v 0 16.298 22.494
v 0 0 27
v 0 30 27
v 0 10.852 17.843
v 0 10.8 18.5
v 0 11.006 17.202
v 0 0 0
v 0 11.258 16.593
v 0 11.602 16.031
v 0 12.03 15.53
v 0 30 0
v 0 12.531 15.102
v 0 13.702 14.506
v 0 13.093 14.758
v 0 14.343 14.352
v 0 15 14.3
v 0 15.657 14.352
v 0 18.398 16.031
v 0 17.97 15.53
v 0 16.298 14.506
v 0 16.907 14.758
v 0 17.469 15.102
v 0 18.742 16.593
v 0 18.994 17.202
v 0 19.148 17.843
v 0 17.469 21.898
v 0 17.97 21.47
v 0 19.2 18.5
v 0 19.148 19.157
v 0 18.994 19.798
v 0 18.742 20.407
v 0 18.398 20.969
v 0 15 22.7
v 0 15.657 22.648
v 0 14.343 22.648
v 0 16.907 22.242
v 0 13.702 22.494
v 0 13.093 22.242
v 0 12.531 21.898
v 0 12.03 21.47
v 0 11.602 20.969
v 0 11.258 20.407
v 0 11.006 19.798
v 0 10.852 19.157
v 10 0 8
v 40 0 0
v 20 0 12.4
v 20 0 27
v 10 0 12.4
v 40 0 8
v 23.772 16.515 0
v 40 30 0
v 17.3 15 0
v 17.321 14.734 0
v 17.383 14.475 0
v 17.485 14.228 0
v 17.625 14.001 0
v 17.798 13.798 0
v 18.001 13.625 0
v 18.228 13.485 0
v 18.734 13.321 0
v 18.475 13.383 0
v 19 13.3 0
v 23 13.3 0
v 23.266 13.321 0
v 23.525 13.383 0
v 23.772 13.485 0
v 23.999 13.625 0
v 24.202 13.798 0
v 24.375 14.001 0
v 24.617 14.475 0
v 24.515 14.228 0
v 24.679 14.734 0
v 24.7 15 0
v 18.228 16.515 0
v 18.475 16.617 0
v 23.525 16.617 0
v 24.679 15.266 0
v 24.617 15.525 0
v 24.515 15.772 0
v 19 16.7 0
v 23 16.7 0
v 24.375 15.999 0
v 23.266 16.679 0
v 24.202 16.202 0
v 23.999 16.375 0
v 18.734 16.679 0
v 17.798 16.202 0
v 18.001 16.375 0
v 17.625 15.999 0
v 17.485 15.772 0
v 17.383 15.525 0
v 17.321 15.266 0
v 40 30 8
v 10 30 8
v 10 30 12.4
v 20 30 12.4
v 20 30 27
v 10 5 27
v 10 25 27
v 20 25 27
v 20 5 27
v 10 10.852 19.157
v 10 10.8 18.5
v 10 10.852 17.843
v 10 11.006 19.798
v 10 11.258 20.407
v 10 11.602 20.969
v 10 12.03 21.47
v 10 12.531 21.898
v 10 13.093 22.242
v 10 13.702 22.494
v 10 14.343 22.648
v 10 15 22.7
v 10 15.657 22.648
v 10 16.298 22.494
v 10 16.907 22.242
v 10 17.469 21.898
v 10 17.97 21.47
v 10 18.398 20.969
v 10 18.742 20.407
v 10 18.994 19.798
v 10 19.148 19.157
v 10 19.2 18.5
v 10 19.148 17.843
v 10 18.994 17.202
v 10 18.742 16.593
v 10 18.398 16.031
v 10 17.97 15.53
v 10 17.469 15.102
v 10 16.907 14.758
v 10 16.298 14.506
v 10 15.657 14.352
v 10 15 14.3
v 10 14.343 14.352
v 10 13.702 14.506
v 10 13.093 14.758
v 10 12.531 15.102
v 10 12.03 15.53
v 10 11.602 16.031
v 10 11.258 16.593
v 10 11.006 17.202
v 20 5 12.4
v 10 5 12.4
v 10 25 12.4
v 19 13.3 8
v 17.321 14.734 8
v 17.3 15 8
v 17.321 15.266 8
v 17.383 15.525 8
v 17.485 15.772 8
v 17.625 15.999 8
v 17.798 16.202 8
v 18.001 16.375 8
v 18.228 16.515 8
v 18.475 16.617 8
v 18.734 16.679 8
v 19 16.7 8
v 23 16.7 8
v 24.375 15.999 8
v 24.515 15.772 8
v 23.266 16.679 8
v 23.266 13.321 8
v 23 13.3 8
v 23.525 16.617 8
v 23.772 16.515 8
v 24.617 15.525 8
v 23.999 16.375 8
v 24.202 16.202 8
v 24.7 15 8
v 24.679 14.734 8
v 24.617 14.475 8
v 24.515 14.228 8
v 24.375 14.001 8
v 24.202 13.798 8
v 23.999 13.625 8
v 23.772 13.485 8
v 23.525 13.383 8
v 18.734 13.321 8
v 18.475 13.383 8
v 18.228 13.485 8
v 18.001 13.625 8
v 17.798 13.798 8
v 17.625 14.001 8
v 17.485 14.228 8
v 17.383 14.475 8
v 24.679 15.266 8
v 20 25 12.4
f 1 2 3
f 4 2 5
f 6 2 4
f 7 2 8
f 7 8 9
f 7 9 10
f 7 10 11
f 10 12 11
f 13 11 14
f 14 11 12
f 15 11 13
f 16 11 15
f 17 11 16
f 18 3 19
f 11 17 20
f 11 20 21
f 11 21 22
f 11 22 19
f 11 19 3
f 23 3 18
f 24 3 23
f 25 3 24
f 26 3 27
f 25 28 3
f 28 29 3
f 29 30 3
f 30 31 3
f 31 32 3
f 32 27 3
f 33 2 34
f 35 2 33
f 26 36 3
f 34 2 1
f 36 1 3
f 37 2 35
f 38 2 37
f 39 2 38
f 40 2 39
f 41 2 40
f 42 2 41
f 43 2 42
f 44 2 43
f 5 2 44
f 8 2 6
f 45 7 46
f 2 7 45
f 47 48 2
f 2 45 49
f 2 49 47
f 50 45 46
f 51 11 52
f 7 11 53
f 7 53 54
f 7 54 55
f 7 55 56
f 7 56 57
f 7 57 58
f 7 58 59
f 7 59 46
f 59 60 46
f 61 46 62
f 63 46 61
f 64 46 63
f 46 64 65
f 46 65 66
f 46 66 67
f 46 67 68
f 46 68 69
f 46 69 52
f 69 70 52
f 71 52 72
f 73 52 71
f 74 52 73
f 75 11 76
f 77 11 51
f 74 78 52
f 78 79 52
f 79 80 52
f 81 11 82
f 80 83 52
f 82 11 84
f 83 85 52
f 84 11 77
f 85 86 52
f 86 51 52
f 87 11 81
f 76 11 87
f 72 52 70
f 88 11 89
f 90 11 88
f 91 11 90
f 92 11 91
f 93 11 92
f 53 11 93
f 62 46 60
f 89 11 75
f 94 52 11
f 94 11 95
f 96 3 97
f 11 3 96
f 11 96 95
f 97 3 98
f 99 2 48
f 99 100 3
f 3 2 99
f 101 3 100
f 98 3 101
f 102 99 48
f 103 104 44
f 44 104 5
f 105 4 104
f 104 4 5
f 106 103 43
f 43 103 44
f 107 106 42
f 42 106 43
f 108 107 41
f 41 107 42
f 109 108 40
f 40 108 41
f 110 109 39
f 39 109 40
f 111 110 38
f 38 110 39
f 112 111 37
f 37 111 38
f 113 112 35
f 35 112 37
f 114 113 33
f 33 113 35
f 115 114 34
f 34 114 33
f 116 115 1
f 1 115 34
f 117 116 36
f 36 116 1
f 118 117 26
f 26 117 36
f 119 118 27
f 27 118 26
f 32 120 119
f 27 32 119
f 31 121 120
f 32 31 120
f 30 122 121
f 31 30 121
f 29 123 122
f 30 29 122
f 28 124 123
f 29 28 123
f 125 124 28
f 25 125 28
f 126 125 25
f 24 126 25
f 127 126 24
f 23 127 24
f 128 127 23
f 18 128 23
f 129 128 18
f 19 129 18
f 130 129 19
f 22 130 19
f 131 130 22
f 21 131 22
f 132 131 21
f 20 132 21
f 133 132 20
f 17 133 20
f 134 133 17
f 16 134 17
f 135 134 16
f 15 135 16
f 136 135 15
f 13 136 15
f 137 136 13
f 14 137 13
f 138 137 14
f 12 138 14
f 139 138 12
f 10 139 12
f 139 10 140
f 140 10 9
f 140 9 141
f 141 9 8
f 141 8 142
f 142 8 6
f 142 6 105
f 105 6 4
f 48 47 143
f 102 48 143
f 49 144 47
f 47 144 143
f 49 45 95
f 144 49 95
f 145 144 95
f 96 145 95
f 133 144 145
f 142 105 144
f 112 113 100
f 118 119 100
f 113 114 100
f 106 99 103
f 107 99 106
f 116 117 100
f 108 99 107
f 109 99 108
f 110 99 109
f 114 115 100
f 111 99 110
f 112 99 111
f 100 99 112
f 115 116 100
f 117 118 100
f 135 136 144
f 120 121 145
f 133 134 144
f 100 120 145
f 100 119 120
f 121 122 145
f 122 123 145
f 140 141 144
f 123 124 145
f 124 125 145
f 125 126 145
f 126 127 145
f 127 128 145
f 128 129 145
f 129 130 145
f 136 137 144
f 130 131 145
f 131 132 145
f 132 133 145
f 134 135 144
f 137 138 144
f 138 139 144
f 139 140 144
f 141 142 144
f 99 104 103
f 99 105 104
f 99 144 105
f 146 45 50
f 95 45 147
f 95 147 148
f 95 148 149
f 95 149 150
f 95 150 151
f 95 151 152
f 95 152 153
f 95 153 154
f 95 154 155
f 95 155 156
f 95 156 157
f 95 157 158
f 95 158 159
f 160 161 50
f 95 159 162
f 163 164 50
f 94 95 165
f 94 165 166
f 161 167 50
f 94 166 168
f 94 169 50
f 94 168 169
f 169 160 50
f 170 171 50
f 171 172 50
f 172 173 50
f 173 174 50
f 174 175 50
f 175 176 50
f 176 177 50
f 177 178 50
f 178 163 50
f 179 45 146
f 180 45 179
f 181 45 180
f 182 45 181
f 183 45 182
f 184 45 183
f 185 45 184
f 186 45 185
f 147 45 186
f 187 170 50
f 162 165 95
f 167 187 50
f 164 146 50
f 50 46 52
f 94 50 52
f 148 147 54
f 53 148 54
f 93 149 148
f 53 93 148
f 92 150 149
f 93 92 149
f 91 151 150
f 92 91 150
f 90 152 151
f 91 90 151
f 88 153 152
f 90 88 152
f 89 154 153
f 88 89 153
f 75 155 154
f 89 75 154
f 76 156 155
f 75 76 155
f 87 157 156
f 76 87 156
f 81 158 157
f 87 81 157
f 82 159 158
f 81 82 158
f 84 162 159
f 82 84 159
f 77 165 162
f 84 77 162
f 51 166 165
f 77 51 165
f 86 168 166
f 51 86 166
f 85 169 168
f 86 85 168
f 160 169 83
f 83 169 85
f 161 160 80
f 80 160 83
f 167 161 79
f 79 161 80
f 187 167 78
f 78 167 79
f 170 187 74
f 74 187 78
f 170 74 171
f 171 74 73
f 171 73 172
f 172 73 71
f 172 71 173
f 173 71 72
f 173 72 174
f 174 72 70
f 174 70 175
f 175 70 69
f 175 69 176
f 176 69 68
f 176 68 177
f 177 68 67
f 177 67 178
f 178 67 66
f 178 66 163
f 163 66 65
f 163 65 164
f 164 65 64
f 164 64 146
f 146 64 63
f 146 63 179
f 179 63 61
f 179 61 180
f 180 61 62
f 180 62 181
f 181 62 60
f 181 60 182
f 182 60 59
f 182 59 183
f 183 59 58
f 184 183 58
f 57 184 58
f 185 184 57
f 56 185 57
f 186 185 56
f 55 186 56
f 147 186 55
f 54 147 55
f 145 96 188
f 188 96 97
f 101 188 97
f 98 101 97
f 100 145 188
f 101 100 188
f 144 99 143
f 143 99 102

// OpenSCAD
$fn=40;
difference()
{
union()
{
	cube([40, 30,8]);
	cube([10,30,27]);
	for(i=[0,1])
		translate([0, 25*i,8+4.4])
			cube([20, 5, 27-8-4.4]);
}
	translate([5,15,8+13/2+4])
	rotate([0,90,0])
		cylinder(r=4.2, h=12, center=true);
	hull()
	for(i=[0,1])
	{
		translate([10+9+4*i,15,0])
		cylinder(r=1.7, h=11);
	}
}
